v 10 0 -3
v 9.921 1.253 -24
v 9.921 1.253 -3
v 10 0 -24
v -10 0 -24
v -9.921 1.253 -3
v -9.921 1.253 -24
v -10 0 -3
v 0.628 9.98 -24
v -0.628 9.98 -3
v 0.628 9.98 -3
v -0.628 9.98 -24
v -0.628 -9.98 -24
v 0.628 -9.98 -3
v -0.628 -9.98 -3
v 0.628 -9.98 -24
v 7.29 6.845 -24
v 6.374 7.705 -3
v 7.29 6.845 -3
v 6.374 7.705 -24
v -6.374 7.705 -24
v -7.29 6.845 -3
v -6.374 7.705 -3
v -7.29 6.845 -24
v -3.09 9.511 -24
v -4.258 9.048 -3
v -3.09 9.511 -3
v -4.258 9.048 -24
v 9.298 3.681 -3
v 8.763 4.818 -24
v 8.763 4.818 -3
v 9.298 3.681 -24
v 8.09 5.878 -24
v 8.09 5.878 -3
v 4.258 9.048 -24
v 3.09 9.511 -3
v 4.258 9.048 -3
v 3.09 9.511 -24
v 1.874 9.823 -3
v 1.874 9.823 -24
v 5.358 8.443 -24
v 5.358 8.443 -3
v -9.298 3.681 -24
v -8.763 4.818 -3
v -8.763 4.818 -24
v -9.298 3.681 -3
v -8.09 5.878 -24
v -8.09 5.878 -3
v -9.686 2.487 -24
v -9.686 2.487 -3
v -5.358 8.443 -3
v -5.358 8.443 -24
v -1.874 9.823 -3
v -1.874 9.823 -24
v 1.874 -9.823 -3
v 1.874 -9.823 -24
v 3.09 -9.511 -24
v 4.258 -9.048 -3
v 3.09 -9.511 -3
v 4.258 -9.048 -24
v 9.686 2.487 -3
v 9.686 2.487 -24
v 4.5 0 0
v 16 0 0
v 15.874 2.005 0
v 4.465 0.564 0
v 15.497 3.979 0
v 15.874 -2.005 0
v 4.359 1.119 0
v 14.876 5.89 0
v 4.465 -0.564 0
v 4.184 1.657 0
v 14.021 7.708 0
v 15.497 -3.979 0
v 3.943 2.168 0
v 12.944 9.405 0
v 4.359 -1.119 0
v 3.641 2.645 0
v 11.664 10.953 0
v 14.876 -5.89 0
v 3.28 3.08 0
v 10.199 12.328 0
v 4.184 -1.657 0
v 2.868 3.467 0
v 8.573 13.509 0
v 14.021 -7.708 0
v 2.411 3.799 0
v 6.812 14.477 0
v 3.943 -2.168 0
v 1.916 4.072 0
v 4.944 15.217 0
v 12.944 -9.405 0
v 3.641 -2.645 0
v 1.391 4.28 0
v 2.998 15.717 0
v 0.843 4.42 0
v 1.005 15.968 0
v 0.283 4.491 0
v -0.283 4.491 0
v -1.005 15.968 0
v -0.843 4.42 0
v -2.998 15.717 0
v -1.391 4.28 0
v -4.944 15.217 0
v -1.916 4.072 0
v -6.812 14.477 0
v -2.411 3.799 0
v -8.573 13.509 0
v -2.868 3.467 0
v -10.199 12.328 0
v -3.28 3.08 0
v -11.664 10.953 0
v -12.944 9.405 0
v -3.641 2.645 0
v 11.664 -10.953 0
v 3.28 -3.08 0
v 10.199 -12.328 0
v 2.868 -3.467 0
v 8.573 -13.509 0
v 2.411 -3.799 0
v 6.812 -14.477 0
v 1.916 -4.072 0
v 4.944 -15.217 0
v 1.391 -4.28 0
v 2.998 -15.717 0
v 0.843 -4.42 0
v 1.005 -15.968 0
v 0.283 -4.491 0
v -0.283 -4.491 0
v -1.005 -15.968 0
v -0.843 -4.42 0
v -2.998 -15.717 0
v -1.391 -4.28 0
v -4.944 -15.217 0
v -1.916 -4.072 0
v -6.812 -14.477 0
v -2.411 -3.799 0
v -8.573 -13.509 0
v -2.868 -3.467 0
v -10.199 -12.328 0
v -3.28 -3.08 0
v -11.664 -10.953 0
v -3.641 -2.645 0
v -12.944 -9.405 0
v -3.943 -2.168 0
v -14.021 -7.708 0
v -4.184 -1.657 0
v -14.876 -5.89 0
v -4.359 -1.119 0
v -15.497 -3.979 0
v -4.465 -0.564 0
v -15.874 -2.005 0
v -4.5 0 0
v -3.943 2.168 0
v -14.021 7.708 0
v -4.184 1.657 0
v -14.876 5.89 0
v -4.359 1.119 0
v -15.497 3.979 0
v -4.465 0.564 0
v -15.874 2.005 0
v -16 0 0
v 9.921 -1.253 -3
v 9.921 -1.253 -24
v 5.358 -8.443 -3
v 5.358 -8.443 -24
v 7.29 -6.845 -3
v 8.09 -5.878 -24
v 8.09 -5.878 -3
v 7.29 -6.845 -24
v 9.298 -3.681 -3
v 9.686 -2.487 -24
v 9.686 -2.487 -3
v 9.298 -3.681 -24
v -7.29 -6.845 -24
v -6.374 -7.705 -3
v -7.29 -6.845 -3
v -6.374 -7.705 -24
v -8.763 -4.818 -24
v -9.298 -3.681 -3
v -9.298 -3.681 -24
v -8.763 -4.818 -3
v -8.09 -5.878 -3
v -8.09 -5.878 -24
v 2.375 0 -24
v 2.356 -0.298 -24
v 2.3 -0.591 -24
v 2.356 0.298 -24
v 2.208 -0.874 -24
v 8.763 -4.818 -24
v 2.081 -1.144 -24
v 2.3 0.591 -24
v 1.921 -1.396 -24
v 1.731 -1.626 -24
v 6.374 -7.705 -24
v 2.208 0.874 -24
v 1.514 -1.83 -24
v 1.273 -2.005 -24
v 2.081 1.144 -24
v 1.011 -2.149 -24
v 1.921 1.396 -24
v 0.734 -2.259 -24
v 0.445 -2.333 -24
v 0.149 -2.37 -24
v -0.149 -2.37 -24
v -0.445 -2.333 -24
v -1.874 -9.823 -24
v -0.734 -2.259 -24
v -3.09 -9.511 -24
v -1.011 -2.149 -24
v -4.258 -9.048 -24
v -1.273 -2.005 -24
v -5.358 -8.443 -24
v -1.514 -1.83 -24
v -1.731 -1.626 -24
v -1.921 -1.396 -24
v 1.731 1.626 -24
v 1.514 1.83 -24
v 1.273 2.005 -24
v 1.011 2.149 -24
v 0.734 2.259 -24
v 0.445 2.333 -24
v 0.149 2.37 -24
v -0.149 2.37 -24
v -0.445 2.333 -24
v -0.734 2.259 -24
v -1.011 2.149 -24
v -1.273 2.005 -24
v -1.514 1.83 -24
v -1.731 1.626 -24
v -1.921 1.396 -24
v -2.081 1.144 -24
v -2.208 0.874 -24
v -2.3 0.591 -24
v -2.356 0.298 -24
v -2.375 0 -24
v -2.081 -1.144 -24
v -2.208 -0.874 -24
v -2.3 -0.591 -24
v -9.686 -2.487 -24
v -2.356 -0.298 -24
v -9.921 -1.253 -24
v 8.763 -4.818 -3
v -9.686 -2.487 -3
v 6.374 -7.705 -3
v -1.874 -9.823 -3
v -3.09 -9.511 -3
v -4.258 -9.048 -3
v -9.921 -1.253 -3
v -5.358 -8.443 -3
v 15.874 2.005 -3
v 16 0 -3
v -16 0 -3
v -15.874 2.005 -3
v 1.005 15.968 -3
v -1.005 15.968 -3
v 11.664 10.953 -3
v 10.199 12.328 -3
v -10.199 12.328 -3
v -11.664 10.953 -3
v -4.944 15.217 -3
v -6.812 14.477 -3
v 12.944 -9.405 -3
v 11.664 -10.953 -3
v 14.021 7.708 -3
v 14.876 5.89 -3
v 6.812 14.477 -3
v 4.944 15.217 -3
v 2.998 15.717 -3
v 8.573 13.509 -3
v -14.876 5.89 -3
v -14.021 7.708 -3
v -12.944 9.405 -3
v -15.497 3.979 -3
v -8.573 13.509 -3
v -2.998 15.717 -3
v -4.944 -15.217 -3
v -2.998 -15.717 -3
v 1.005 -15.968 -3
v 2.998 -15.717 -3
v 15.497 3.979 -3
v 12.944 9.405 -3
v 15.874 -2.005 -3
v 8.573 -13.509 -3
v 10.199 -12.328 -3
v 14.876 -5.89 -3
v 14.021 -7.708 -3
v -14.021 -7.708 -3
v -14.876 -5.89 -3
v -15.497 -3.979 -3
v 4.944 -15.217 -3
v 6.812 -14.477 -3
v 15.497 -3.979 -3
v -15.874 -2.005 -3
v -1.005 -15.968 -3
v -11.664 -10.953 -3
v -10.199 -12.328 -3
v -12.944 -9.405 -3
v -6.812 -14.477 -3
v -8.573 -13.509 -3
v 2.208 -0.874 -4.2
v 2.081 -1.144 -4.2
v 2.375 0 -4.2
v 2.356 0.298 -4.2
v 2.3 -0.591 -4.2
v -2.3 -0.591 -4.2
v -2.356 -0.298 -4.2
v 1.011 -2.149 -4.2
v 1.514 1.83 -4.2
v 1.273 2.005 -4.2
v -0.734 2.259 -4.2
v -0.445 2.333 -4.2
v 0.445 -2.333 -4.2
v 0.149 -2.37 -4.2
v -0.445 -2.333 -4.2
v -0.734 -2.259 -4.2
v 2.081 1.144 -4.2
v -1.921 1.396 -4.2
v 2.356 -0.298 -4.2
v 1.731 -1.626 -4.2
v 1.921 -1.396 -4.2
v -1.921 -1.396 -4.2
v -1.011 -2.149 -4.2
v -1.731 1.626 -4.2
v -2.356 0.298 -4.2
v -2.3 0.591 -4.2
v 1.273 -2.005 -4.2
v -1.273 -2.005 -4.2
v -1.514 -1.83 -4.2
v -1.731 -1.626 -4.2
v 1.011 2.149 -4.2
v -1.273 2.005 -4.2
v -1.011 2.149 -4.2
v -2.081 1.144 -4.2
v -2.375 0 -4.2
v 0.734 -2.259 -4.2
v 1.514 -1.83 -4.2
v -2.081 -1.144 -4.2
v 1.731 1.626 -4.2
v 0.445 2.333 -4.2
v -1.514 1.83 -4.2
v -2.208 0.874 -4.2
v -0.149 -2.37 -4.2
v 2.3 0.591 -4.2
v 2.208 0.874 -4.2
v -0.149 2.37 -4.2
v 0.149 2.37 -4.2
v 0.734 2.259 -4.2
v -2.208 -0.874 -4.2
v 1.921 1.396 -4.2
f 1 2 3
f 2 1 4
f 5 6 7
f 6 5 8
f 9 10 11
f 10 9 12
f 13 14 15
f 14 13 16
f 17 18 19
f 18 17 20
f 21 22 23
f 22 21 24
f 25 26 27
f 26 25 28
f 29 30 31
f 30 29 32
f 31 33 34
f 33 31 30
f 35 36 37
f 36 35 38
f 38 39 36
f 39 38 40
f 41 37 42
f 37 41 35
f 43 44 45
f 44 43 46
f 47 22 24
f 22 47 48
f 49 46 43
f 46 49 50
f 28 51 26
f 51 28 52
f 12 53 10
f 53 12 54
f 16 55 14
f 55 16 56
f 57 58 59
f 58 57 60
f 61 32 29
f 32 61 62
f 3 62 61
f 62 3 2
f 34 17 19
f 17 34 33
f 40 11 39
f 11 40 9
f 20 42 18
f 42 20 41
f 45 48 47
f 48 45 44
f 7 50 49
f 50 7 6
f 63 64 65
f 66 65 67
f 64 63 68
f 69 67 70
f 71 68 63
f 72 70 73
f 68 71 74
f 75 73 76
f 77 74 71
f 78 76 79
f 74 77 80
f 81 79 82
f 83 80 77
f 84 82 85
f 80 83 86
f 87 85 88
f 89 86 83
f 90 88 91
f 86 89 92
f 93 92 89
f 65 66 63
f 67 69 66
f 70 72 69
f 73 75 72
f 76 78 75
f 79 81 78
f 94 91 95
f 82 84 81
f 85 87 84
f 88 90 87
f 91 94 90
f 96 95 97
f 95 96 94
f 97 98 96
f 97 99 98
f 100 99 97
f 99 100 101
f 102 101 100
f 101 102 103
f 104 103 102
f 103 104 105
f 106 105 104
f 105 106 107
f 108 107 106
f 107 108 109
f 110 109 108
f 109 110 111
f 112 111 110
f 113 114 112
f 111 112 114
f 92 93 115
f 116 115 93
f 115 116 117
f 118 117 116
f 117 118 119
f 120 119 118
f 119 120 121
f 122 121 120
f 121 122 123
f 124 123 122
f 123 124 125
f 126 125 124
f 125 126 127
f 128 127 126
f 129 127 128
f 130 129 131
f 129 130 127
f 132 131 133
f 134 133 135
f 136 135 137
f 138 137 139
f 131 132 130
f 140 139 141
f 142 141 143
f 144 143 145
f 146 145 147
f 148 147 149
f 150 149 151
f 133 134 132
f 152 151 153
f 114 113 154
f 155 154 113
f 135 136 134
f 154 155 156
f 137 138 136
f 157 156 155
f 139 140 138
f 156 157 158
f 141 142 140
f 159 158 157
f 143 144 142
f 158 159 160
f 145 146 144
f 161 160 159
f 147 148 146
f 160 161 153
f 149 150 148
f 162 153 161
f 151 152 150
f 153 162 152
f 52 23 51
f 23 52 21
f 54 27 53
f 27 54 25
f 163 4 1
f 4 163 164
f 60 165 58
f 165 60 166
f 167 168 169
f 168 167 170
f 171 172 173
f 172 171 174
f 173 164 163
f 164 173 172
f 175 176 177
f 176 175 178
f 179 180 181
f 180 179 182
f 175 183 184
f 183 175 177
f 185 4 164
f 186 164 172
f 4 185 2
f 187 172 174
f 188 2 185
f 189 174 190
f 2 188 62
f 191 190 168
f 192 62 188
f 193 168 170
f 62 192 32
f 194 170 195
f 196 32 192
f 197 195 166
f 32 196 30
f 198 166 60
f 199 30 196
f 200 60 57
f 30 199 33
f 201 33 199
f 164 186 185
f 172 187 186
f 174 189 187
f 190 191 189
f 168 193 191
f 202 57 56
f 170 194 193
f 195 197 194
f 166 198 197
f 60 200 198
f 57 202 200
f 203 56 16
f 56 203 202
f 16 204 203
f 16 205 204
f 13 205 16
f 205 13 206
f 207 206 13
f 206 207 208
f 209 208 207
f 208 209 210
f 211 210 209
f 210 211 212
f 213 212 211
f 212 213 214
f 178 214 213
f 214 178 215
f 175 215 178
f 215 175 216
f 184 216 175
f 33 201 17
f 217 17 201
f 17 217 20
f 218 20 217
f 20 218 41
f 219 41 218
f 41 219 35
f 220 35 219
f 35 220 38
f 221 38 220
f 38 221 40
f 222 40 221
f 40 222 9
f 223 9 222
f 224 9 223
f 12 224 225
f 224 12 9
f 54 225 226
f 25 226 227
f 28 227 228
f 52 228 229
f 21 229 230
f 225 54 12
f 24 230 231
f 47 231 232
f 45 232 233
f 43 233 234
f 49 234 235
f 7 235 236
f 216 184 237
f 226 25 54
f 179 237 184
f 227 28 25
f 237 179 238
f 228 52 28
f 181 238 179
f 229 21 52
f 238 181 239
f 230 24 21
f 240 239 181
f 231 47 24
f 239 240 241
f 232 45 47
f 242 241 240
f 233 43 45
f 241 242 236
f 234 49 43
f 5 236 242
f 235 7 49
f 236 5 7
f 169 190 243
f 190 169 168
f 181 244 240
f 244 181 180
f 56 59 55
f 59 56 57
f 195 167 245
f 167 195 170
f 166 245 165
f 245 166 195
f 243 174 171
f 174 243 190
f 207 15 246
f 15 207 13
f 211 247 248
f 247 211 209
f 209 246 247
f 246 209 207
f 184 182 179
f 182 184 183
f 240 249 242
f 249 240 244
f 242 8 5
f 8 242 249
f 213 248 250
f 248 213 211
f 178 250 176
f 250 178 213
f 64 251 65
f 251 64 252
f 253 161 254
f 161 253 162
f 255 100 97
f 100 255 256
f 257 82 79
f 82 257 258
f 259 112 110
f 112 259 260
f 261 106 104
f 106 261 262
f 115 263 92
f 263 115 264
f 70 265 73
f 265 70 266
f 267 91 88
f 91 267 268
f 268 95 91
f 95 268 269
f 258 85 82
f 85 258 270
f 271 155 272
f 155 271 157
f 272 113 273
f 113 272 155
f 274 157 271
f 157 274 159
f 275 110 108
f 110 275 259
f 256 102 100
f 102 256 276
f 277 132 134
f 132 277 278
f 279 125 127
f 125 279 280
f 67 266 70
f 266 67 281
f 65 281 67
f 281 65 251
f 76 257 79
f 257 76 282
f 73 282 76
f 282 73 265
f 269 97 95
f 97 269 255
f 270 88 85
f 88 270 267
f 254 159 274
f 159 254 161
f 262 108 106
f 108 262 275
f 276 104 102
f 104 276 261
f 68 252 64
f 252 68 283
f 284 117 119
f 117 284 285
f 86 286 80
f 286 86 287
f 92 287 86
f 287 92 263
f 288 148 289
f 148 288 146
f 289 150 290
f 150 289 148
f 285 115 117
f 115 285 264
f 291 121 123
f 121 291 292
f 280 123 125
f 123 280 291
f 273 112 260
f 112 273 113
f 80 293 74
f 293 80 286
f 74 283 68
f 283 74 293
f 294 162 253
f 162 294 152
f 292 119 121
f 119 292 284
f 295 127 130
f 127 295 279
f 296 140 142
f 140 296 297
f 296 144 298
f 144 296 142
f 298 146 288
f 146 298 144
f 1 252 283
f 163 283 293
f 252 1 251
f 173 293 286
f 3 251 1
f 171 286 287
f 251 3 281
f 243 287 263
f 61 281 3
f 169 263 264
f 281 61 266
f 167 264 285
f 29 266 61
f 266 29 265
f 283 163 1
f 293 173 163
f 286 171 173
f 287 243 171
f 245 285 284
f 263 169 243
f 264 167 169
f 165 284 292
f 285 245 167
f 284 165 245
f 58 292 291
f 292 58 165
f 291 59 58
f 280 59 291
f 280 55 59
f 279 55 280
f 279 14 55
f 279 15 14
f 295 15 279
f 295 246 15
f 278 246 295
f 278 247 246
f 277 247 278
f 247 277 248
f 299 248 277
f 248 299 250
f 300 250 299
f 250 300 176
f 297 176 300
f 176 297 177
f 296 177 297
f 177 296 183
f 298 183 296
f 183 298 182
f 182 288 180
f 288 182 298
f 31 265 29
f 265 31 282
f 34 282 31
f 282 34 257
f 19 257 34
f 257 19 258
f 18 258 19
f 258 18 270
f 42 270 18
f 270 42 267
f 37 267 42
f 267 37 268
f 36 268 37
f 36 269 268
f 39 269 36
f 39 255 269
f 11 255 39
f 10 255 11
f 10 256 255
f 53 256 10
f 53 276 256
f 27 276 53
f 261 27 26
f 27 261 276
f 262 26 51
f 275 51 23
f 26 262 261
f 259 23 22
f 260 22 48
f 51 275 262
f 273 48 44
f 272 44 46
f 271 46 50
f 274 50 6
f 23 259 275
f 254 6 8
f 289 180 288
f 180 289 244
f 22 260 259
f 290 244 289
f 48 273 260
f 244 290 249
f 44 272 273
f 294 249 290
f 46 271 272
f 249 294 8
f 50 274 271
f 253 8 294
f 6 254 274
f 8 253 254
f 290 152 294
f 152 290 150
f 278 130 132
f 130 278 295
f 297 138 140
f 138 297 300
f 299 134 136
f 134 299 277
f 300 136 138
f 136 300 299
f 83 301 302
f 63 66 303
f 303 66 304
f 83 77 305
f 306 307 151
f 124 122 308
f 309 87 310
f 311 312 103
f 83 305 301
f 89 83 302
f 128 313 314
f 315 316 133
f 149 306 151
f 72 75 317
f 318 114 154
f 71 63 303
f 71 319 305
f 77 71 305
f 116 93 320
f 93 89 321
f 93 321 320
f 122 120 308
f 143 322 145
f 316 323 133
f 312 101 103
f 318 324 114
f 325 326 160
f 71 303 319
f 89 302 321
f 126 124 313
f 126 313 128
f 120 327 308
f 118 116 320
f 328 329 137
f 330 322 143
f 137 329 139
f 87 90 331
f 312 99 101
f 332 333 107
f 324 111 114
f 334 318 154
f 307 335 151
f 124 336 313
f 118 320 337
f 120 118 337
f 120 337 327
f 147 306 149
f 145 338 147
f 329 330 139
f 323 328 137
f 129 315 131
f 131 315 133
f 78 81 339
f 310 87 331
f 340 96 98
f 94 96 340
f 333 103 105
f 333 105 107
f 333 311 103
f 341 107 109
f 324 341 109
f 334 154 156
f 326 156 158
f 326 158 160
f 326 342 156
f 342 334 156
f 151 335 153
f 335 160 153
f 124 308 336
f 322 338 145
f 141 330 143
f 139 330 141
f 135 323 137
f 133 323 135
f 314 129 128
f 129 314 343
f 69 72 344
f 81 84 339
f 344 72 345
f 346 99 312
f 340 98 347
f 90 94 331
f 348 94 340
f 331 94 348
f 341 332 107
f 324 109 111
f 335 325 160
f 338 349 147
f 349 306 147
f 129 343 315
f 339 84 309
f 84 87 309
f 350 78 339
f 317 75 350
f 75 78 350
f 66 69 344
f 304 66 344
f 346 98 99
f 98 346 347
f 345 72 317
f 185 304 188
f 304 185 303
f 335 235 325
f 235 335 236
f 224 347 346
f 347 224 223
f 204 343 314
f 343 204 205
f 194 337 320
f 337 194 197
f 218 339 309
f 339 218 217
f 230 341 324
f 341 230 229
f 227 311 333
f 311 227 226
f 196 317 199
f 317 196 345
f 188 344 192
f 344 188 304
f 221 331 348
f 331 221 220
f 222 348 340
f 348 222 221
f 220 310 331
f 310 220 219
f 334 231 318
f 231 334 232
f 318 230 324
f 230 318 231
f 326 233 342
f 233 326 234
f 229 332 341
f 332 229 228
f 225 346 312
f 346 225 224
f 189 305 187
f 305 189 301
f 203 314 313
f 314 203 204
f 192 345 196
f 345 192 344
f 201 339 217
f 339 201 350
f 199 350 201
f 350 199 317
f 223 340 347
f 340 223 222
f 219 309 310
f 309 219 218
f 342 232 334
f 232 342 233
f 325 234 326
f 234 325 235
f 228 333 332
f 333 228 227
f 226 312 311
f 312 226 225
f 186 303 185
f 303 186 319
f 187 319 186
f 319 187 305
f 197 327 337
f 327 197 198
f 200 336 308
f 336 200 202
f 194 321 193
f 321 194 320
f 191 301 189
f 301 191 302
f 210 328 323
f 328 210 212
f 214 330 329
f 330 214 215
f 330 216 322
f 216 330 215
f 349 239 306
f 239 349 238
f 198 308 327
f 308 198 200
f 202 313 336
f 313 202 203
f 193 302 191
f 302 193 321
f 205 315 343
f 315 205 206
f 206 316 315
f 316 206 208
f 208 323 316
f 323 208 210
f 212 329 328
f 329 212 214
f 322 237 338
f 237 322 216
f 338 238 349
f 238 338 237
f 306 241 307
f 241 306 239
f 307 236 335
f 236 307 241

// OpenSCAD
$fn = 50;


difference() {
	union() {
		translate(v = [0, 0, -24.0000000000]) {
			cylinder(h = 24, r = 10.0000000000);
		}
		translate(v = [0, 0, -3.0000000000]) {
			cylinder(h = 3, r = 16.0000000000);
		}
	}
	union() {
		translate(v = [0, 0, 0]) {
			rotate(a = [0, 0, 0]) {
				difference() {
					union() {
						#translate(v = [0, 0, -24.0000000000]) {
							cylinder(h = 24, r = 2.2500000000);
						}
						#translate(v = [0, 0, -4.2000000000]) {
							cylinder(h = 4.2000000000, r1 = 2.3750000000, r2 = 4.5000000000);
						}
						#translate(v = [0, 0, -24.0000000000]) {
							cylinder(h = 24, r = 2.3750000000);
						}
						#translate(v = [0, 0, -24.0000000000]) {
							cylinder(h = 24, r = 2.2500000000);
						}
					}
					union();
				}
			}
		}
	}
}
